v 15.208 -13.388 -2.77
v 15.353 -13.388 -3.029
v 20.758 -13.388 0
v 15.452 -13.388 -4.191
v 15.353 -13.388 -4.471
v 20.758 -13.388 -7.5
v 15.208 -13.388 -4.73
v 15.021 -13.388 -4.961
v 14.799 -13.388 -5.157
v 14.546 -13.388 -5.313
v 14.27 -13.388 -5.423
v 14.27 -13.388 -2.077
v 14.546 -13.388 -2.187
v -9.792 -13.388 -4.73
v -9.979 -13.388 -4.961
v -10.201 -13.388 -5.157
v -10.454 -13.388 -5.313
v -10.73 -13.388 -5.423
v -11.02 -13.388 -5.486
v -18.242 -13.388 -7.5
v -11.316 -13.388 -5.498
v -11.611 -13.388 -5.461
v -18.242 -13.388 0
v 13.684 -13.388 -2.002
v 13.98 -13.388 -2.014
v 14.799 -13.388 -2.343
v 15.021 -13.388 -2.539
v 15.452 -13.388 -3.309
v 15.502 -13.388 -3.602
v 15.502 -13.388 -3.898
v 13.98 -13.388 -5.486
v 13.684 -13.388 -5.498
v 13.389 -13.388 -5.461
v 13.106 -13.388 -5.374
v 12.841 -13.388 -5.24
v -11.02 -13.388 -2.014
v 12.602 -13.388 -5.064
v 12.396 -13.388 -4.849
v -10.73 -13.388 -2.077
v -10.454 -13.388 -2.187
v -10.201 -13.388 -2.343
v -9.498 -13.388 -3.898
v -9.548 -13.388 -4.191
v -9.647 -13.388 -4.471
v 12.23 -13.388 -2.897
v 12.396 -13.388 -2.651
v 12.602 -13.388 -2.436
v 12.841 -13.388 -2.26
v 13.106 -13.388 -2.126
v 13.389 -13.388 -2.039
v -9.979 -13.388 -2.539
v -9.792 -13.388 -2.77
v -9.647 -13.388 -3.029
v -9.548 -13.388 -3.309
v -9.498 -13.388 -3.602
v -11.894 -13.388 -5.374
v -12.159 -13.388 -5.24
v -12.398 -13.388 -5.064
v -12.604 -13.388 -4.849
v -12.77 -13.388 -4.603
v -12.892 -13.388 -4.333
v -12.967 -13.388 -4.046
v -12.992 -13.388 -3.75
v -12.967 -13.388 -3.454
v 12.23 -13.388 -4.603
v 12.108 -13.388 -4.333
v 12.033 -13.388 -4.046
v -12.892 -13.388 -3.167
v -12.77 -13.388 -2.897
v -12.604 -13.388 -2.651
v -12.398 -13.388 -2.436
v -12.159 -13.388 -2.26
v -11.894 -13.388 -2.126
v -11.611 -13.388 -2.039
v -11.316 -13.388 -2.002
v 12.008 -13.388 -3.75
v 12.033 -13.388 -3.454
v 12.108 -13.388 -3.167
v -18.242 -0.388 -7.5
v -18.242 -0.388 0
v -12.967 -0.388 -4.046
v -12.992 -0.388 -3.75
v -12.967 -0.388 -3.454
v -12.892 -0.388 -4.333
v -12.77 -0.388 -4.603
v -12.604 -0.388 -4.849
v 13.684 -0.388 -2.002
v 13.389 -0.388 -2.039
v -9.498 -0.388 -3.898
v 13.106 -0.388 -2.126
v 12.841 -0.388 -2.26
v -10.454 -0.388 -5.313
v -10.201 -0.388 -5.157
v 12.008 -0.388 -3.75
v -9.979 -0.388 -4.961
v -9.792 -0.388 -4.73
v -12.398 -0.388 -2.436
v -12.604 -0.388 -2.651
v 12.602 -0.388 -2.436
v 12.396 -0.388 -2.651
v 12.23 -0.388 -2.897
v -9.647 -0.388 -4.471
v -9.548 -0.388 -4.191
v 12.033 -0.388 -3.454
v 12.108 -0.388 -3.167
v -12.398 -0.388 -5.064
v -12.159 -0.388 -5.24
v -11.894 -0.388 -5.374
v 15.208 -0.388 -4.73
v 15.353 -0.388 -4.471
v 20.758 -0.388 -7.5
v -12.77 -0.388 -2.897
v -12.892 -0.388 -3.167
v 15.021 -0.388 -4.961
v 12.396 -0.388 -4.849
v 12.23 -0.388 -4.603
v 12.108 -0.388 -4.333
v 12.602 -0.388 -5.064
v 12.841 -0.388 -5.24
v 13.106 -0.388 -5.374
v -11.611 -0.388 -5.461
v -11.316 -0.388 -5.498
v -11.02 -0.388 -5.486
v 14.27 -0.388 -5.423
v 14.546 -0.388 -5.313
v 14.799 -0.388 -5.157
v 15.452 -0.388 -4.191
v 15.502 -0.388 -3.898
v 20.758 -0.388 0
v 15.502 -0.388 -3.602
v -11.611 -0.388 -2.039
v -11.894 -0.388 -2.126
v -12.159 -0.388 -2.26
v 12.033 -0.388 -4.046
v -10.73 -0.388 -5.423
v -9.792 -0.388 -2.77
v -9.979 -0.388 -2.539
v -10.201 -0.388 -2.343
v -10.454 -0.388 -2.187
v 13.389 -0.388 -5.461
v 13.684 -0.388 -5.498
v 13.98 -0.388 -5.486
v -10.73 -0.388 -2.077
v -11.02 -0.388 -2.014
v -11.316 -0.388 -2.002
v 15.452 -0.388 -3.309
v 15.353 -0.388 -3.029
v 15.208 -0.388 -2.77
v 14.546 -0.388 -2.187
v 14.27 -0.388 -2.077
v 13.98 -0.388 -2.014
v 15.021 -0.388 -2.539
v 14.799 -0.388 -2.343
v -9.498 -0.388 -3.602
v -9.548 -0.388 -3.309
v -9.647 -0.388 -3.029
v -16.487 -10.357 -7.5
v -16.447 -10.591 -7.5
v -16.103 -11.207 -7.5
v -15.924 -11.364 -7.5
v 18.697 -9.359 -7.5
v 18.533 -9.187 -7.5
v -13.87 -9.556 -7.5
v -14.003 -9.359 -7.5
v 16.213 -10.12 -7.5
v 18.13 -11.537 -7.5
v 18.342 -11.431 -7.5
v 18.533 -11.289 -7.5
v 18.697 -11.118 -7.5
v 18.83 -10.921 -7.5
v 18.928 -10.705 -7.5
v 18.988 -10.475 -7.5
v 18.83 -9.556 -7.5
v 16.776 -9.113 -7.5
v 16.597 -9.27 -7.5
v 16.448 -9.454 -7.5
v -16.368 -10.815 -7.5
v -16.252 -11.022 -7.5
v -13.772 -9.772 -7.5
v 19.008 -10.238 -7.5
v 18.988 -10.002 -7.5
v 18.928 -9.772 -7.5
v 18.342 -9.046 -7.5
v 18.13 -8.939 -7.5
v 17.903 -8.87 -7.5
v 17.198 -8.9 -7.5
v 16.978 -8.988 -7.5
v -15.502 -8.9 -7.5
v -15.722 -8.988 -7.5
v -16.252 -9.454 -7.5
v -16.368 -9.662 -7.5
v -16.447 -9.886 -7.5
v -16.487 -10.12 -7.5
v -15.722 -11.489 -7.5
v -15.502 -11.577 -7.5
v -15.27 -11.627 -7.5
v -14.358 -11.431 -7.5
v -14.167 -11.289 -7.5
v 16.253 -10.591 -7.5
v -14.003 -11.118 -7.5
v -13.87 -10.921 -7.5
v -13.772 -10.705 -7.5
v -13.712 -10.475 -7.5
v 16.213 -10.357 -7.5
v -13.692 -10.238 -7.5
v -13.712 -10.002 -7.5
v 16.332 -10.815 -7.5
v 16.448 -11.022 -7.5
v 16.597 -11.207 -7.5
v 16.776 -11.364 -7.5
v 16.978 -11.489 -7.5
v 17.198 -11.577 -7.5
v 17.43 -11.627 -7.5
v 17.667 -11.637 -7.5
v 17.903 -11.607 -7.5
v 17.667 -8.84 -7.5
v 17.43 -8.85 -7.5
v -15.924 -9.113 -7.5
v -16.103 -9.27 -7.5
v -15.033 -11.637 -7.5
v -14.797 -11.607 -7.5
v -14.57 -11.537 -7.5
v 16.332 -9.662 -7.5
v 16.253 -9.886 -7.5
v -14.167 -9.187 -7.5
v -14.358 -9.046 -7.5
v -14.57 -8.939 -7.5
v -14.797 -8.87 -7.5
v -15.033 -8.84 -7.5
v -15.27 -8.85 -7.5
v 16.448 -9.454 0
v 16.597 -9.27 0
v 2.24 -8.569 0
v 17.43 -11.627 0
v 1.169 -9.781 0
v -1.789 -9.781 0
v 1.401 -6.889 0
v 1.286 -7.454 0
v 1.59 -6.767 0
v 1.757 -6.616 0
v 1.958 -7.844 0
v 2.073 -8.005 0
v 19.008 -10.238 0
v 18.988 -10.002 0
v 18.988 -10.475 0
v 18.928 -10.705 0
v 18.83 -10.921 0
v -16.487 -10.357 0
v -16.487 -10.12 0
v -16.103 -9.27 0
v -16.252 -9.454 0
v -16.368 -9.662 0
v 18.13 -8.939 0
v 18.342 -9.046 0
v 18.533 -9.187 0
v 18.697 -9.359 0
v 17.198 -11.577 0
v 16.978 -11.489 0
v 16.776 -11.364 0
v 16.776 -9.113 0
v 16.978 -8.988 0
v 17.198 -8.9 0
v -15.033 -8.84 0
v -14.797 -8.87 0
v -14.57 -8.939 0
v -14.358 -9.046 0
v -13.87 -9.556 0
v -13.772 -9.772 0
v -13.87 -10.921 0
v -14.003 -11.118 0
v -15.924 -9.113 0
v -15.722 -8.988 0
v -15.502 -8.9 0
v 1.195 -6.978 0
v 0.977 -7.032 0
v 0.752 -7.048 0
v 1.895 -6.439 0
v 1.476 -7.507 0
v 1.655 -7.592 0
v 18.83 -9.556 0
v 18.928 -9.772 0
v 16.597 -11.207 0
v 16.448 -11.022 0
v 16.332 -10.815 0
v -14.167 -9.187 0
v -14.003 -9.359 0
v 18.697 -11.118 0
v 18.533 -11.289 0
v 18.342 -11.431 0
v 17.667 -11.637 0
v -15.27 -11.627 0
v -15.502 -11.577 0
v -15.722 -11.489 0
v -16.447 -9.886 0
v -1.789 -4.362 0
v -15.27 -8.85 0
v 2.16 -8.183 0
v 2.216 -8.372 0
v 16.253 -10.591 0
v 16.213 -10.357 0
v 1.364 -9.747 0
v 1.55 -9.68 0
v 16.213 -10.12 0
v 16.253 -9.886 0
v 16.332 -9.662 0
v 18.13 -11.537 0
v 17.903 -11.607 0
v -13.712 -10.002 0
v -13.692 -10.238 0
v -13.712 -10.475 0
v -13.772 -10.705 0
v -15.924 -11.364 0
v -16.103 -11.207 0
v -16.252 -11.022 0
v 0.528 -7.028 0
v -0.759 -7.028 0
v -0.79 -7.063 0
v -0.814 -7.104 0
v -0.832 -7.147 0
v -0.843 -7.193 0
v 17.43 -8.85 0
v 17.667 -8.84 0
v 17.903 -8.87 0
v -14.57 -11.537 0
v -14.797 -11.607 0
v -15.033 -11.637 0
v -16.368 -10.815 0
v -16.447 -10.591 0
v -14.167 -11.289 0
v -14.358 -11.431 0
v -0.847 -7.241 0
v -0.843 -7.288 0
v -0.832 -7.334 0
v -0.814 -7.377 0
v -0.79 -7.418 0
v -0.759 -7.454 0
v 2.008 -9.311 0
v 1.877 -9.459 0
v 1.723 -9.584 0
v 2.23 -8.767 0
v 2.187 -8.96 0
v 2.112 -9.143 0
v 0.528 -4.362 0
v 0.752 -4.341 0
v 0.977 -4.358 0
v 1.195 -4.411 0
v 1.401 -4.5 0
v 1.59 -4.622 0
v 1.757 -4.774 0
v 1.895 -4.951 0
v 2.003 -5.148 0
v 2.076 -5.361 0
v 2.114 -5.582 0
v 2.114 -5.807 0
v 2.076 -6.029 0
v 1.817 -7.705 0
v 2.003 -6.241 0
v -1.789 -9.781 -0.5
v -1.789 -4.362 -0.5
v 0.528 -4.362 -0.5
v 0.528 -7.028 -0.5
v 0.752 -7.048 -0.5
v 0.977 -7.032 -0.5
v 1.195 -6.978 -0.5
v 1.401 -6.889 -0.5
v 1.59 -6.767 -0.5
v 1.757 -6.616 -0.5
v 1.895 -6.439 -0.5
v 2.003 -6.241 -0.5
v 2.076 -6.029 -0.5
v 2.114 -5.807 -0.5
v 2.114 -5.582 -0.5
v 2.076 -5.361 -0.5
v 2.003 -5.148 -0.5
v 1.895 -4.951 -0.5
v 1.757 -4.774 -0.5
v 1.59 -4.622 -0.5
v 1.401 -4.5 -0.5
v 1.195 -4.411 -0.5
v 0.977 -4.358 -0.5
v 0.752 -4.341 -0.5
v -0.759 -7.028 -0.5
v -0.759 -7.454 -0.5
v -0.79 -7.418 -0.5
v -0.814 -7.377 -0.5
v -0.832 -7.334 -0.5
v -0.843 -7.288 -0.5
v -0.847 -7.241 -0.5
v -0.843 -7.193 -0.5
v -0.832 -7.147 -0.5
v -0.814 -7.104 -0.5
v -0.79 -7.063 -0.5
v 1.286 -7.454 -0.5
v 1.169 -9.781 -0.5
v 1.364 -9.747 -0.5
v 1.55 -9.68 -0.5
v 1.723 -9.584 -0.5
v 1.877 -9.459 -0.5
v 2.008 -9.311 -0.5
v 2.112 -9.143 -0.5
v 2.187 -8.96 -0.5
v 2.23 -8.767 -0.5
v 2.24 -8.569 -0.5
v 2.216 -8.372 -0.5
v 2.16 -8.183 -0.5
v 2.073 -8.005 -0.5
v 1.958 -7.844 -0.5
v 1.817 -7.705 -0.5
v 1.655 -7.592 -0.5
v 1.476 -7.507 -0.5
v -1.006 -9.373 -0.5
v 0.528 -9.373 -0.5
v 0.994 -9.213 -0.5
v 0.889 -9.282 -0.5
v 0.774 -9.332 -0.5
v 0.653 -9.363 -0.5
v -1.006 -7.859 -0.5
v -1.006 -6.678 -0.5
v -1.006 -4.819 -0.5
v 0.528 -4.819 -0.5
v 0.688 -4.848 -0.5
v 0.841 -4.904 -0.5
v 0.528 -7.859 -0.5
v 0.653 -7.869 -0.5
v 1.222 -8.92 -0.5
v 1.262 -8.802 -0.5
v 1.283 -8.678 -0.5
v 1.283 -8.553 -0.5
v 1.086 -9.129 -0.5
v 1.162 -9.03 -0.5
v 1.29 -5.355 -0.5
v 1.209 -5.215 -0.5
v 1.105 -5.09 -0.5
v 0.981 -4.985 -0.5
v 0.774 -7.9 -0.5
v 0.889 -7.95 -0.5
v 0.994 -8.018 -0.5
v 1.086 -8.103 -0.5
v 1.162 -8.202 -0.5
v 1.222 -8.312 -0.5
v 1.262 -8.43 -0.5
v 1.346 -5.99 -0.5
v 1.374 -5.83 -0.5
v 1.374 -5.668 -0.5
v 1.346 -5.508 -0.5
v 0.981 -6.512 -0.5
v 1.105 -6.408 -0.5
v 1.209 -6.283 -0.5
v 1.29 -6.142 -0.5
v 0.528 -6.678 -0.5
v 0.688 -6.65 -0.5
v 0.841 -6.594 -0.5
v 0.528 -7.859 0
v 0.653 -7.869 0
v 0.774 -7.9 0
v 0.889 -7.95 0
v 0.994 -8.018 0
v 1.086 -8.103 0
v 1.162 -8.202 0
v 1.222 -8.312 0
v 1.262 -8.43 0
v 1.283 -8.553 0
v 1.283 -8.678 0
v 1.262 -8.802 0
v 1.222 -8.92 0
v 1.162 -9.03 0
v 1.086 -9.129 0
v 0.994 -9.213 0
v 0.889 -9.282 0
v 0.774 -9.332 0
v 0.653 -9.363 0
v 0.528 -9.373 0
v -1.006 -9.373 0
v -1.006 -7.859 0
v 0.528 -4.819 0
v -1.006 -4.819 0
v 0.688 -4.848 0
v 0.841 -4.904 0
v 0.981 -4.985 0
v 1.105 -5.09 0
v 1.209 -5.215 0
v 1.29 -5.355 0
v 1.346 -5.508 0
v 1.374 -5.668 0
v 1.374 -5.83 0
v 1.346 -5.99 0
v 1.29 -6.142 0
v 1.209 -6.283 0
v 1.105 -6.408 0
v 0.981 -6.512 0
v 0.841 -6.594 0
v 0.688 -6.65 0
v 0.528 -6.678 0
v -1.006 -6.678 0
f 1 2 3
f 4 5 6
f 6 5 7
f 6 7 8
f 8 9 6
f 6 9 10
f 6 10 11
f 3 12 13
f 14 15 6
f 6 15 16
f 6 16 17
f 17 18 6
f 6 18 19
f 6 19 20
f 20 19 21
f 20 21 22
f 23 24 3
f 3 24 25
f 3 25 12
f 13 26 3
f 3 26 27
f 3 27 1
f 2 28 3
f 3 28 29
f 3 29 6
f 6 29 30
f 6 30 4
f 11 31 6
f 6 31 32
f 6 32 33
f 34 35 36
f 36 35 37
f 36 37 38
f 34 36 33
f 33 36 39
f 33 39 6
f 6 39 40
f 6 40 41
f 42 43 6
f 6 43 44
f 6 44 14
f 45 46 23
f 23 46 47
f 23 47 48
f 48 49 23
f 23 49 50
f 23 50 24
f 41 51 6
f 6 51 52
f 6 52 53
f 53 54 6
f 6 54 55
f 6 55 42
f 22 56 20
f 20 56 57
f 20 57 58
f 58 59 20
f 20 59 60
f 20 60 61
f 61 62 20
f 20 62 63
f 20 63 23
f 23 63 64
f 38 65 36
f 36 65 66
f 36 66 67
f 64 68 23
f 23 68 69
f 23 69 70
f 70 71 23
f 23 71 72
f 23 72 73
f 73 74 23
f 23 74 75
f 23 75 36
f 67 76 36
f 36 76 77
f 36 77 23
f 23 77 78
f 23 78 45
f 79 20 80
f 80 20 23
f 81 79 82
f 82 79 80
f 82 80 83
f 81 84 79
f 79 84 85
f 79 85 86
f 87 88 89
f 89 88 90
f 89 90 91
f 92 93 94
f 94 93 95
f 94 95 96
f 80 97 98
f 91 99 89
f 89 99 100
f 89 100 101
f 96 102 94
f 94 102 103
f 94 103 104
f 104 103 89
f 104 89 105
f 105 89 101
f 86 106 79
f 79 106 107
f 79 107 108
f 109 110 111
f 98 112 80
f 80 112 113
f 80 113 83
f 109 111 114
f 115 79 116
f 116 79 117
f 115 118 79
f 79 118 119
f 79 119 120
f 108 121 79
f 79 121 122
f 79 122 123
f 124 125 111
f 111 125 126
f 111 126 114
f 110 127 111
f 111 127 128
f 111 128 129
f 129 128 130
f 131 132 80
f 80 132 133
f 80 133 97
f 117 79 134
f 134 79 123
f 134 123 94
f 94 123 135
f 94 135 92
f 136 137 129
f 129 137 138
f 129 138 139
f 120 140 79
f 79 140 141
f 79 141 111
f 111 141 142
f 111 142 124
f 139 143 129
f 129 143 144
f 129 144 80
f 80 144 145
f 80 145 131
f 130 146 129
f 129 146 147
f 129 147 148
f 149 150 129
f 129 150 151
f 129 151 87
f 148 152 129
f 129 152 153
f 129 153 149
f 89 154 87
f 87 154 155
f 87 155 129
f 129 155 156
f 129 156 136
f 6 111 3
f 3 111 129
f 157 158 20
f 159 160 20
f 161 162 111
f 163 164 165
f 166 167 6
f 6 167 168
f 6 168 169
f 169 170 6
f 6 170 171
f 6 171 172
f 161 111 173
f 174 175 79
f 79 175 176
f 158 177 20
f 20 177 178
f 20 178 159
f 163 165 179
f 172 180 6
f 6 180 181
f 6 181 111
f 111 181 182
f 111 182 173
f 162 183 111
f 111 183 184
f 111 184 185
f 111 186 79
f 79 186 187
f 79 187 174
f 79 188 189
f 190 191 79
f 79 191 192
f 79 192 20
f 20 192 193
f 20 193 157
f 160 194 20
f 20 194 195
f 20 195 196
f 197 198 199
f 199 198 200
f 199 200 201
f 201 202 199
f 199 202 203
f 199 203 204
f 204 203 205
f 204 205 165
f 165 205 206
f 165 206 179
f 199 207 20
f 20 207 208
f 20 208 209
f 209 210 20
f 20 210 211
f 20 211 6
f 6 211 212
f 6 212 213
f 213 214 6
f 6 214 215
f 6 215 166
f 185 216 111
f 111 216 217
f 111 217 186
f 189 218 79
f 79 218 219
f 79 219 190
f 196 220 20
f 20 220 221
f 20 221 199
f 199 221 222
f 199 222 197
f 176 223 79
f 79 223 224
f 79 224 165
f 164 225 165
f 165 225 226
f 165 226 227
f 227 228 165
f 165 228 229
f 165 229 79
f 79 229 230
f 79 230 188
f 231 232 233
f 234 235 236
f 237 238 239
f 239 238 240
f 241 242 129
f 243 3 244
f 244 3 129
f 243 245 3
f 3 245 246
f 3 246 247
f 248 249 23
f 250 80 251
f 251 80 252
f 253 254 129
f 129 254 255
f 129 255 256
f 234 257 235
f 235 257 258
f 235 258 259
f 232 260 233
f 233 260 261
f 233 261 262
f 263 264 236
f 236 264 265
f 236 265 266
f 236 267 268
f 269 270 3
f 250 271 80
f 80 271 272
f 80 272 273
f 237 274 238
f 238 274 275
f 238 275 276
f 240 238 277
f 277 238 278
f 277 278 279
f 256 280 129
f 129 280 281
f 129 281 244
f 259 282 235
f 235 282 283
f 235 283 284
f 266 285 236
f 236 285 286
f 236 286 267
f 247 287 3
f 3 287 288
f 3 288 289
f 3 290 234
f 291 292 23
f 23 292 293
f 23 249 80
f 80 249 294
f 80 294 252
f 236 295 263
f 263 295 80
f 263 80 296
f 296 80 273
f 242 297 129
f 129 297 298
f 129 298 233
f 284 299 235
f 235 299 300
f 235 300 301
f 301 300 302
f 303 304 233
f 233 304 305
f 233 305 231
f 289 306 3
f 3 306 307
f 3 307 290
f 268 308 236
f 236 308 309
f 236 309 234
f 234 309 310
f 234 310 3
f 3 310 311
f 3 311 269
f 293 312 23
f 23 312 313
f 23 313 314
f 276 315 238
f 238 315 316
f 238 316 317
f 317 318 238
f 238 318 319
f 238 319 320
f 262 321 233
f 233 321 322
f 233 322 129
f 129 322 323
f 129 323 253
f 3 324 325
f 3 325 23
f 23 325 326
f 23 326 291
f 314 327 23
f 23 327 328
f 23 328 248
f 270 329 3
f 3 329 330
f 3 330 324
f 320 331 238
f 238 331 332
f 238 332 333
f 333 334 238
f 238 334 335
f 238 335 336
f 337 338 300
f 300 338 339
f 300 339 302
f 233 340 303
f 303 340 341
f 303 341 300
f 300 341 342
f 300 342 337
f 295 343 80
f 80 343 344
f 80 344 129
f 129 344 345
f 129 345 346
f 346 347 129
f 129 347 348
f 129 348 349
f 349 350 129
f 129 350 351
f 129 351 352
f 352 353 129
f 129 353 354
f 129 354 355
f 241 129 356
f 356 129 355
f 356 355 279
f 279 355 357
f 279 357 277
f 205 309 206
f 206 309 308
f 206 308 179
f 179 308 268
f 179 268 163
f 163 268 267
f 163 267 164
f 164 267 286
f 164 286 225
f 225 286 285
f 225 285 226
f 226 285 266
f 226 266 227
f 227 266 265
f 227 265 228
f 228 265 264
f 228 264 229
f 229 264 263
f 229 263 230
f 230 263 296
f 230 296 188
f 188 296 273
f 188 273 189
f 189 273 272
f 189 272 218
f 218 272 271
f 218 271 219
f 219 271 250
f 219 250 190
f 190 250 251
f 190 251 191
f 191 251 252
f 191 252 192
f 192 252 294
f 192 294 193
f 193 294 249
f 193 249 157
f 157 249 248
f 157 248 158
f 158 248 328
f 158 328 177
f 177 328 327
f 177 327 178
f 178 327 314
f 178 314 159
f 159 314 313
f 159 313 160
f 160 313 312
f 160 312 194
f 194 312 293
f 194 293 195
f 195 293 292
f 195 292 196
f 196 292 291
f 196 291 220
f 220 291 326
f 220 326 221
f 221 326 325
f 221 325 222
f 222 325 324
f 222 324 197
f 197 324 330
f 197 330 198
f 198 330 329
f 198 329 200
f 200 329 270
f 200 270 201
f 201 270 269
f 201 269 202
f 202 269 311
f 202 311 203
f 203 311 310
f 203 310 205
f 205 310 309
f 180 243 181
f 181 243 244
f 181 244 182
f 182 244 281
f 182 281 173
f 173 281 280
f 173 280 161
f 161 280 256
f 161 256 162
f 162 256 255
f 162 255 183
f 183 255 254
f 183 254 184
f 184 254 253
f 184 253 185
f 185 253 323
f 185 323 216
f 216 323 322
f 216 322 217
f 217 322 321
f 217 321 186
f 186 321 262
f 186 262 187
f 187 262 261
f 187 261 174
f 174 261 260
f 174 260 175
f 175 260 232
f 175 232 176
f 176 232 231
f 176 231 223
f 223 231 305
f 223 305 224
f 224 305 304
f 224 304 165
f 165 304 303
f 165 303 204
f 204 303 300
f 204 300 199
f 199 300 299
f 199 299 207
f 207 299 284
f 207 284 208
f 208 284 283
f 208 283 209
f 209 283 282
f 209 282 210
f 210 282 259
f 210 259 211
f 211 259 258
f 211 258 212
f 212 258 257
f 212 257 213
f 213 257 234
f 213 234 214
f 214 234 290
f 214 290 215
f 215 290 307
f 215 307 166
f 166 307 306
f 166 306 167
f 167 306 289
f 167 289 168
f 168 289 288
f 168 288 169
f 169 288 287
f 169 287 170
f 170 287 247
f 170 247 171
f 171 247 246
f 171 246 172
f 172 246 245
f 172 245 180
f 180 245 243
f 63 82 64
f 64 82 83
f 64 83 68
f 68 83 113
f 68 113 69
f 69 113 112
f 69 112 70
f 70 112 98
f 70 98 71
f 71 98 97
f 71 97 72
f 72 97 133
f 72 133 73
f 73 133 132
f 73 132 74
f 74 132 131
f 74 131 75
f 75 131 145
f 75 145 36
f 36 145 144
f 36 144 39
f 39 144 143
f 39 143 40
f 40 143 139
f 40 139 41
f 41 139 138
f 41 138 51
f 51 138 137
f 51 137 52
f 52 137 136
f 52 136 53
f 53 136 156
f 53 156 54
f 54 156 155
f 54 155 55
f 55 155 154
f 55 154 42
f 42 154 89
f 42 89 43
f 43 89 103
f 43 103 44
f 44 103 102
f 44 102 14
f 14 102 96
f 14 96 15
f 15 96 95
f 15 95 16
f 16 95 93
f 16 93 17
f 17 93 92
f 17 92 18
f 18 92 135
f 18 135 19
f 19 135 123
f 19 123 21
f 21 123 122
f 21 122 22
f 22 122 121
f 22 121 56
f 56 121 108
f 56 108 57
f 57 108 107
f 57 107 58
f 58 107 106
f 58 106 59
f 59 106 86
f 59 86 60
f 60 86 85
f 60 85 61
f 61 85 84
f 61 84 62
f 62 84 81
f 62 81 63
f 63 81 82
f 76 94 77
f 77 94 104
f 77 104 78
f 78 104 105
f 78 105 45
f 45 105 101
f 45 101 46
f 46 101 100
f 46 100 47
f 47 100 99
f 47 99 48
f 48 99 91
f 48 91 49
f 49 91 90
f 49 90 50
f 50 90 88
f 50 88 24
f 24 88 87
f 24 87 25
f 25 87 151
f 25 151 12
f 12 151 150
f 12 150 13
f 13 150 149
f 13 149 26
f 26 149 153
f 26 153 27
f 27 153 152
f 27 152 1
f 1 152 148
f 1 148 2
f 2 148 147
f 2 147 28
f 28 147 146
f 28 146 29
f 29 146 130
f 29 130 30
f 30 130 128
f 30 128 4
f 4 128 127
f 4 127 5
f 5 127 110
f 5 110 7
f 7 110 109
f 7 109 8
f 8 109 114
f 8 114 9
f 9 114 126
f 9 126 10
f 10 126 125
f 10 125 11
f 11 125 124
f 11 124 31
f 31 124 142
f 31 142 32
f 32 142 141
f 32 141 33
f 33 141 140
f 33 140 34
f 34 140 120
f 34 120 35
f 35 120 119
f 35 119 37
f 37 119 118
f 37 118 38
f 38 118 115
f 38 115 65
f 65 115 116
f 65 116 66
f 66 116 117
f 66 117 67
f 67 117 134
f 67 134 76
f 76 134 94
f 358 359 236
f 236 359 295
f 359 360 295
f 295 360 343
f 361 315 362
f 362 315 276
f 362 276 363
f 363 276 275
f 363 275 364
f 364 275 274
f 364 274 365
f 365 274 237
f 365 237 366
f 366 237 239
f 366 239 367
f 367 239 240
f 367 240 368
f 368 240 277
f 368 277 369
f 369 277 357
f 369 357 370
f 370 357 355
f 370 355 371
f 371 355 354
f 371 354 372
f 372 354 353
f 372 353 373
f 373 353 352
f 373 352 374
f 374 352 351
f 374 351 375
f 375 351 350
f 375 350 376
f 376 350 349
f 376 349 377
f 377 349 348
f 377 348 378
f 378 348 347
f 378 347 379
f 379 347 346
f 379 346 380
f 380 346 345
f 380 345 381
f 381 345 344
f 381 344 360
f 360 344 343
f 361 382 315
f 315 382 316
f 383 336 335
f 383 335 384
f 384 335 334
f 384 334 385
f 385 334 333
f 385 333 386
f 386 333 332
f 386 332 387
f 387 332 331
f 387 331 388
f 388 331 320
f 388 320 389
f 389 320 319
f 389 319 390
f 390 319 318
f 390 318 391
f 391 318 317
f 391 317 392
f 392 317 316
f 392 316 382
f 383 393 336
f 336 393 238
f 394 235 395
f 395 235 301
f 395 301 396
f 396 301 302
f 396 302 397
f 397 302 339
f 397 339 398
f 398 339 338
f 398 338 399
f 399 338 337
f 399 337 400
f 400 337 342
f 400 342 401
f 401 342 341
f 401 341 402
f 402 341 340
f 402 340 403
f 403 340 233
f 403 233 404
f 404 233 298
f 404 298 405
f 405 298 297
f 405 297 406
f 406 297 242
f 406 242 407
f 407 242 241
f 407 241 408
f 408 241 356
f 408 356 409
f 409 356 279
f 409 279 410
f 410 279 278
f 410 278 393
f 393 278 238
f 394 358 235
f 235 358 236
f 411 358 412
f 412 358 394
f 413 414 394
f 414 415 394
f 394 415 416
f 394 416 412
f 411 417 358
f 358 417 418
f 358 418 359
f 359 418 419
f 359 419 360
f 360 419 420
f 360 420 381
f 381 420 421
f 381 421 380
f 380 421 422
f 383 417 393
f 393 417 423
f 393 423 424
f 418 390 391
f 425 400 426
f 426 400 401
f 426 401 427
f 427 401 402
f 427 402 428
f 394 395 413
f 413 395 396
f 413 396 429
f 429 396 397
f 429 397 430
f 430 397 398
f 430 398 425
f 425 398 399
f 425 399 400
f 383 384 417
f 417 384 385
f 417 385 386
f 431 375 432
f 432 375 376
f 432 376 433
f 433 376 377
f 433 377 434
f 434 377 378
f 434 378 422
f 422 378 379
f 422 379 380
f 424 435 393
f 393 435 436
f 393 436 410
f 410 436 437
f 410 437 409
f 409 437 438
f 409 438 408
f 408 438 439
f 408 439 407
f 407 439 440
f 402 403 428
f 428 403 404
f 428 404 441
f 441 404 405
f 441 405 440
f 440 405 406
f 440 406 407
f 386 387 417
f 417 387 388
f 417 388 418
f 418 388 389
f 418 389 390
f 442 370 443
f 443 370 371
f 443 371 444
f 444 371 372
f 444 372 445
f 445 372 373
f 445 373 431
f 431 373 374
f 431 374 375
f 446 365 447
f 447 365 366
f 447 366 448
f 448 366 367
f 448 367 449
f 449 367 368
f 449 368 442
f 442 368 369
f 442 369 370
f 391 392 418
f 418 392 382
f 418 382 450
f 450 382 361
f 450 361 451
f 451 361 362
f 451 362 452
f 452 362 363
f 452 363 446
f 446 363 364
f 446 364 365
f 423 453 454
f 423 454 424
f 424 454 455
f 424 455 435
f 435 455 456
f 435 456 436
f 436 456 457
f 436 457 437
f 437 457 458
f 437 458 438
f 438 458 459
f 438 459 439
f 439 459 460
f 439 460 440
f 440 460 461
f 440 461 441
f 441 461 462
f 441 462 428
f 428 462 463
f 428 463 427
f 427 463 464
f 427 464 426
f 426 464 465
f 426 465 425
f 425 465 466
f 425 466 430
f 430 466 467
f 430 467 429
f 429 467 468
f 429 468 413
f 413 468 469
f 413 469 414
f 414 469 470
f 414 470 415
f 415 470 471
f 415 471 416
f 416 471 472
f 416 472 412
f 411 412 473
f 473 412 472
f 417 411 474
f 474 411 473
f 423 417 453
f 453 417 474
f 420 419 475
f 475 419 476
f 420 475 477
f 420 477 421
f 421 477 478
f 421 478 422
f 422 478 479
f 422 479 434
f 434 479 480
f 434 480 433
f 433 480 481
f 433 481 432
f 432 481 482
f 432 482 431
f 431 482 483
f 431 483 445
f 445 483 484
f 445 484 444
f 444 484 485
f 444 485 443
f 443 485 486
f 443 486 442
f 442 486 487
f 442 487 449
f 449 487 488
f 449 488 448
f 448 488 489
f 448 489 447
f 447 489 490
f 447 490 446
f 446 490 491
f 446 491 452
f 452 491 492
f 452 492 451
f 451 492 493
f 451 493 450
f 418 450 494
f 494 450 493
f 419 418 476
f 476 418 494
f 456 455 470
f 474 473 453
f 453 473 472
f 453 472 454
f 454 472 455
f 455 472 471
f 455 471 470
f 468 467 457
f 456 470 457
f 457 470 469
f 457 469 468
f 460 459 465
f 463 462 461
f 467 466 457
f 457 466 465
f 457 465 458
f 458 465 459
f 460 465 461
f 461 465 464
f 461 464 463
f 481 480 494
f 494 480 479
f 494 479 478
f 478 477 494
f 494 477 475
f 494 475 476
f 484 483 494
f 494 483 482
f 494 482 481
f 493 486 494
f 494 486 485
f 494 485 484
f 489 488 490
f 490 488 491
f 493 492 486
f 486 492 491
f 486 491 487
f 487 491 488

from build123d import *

# Parameters (mm, degrees)
SKETCH1_W           = 39
SKETCH1_H           = 13
SKETCH1_R           = 1.4
BOSS_EXTRUDE2_DEPTH = 7.5
SKETCH2_R           = 1.75
CUT_EXTRUDE1_DEPTH  = 26.615367173
CUT_EXTRUDE2_DEPTH  = 0.5


with BuildPart() as part:
    # Sketch1 → Boss-Extrude2 (new body)
    with BuildSketch(Plane.XY):
        with Locations((1.258059529, -6.888438134)):
            Rectangle(SKETCH1_W, SKETCH1_H)
        with Locations((-15.091940471, -10.238438134)):
            Circle(SKETCH1_R, mode=Mode.SUBTRACT)
        with Locations((17.608059529, -10.238438134)):
            Circle(SKETCH1_R, mode=Mode.SUBTRACT)
    extrude(amount=-BOSS_EXTRUDE2_DEPTH)

    # Sketch2 → Cut-Extrude1 (cut, through all)
    with BuildSketch(Plane(origin=(0, -0.388438134, 0), x_dir=(1, 0, 0), z_dir=(0, 1, 0))):
        with Locations(Location((-11.241940471, 3.75, 0), (0, 0, 180))):
            Circle(SKETCH2_R)
        with Locations(Location((13.758059529, 3.75, 0), (0, 0, 180))):
            Circle(SKETCH2_R)
    extrude(amount=-CUT_EXTRUDE1_DEPTH, mode=Mode.SUBTRACT)

    # Sketch3 → Cut-Extrude2 (cut)
    with BuildSketch(Plane.XY):
        with BuildLine():
            Line((-1.789484561, -4.361984997), (0.528429434, -4.361984997))
            ThreePointArc((0.528429434, -4.361984997), (2.118216576, -5.694764696), (0.528429434, -7.027544395))
            Line((0.528429434, -7.027544395), (-0.758815547, -7.027544395))
            ThreePointArc((-0.758815547, -7.027544395), (-0.847047418, -7.240554977), (-0.758815547, -7.453565558))
            Line((-0.758815547, -7.453565558), (1.285636155, -7.453565558))
            ThreePointArc((1.285636155, -7.453565558), (2.238737943, -8.66797631), (1.168769854, -9.780794705))
            Line((1.168769854, -9.780794705), (-1.789484561, -9.780794705))
            Line((-1.789484561, -9.780794705), (-1.789484561, -4.361984997))
        make_face()
        with BuildLine():
            Line((-1.006496381, -4.819305585), (-1.006496381, -6.678234448))
            Line((-1.006496381, -6.678234448), (0.528429434, -6.678234448))
            ThreePointArc((0.528429434, -6.678234448), (1.377263921, -5.748770016), (0.528429434, -4.819305585))
            Line((0.528429434, -4.819305585), (-1.006496381, -4.819305585))
        make_face(mode=Mode.SUBTRACT)
        with BuildLine():
            Line((-1.006496381, -7.858595879), (-1.006496381, -9.373009321))
            Line((-1.006496381, -9.373009321), (0.528429434, -9.373009321))
            ThreePointArc((0.528429434, -9.373009321), (1.285636155, -8.6158026), (0.528429434, -7.858595879))
            Line((0.528429434, -7.858595879), (-1.006496381, -7.858595879))
        make_face(mode=Mode.SUBTRACT)
    extrude(amount=-CUT_EXTRUDE2_DEPTH, mode=Mode.SUBTRACT)


solid = part.part
